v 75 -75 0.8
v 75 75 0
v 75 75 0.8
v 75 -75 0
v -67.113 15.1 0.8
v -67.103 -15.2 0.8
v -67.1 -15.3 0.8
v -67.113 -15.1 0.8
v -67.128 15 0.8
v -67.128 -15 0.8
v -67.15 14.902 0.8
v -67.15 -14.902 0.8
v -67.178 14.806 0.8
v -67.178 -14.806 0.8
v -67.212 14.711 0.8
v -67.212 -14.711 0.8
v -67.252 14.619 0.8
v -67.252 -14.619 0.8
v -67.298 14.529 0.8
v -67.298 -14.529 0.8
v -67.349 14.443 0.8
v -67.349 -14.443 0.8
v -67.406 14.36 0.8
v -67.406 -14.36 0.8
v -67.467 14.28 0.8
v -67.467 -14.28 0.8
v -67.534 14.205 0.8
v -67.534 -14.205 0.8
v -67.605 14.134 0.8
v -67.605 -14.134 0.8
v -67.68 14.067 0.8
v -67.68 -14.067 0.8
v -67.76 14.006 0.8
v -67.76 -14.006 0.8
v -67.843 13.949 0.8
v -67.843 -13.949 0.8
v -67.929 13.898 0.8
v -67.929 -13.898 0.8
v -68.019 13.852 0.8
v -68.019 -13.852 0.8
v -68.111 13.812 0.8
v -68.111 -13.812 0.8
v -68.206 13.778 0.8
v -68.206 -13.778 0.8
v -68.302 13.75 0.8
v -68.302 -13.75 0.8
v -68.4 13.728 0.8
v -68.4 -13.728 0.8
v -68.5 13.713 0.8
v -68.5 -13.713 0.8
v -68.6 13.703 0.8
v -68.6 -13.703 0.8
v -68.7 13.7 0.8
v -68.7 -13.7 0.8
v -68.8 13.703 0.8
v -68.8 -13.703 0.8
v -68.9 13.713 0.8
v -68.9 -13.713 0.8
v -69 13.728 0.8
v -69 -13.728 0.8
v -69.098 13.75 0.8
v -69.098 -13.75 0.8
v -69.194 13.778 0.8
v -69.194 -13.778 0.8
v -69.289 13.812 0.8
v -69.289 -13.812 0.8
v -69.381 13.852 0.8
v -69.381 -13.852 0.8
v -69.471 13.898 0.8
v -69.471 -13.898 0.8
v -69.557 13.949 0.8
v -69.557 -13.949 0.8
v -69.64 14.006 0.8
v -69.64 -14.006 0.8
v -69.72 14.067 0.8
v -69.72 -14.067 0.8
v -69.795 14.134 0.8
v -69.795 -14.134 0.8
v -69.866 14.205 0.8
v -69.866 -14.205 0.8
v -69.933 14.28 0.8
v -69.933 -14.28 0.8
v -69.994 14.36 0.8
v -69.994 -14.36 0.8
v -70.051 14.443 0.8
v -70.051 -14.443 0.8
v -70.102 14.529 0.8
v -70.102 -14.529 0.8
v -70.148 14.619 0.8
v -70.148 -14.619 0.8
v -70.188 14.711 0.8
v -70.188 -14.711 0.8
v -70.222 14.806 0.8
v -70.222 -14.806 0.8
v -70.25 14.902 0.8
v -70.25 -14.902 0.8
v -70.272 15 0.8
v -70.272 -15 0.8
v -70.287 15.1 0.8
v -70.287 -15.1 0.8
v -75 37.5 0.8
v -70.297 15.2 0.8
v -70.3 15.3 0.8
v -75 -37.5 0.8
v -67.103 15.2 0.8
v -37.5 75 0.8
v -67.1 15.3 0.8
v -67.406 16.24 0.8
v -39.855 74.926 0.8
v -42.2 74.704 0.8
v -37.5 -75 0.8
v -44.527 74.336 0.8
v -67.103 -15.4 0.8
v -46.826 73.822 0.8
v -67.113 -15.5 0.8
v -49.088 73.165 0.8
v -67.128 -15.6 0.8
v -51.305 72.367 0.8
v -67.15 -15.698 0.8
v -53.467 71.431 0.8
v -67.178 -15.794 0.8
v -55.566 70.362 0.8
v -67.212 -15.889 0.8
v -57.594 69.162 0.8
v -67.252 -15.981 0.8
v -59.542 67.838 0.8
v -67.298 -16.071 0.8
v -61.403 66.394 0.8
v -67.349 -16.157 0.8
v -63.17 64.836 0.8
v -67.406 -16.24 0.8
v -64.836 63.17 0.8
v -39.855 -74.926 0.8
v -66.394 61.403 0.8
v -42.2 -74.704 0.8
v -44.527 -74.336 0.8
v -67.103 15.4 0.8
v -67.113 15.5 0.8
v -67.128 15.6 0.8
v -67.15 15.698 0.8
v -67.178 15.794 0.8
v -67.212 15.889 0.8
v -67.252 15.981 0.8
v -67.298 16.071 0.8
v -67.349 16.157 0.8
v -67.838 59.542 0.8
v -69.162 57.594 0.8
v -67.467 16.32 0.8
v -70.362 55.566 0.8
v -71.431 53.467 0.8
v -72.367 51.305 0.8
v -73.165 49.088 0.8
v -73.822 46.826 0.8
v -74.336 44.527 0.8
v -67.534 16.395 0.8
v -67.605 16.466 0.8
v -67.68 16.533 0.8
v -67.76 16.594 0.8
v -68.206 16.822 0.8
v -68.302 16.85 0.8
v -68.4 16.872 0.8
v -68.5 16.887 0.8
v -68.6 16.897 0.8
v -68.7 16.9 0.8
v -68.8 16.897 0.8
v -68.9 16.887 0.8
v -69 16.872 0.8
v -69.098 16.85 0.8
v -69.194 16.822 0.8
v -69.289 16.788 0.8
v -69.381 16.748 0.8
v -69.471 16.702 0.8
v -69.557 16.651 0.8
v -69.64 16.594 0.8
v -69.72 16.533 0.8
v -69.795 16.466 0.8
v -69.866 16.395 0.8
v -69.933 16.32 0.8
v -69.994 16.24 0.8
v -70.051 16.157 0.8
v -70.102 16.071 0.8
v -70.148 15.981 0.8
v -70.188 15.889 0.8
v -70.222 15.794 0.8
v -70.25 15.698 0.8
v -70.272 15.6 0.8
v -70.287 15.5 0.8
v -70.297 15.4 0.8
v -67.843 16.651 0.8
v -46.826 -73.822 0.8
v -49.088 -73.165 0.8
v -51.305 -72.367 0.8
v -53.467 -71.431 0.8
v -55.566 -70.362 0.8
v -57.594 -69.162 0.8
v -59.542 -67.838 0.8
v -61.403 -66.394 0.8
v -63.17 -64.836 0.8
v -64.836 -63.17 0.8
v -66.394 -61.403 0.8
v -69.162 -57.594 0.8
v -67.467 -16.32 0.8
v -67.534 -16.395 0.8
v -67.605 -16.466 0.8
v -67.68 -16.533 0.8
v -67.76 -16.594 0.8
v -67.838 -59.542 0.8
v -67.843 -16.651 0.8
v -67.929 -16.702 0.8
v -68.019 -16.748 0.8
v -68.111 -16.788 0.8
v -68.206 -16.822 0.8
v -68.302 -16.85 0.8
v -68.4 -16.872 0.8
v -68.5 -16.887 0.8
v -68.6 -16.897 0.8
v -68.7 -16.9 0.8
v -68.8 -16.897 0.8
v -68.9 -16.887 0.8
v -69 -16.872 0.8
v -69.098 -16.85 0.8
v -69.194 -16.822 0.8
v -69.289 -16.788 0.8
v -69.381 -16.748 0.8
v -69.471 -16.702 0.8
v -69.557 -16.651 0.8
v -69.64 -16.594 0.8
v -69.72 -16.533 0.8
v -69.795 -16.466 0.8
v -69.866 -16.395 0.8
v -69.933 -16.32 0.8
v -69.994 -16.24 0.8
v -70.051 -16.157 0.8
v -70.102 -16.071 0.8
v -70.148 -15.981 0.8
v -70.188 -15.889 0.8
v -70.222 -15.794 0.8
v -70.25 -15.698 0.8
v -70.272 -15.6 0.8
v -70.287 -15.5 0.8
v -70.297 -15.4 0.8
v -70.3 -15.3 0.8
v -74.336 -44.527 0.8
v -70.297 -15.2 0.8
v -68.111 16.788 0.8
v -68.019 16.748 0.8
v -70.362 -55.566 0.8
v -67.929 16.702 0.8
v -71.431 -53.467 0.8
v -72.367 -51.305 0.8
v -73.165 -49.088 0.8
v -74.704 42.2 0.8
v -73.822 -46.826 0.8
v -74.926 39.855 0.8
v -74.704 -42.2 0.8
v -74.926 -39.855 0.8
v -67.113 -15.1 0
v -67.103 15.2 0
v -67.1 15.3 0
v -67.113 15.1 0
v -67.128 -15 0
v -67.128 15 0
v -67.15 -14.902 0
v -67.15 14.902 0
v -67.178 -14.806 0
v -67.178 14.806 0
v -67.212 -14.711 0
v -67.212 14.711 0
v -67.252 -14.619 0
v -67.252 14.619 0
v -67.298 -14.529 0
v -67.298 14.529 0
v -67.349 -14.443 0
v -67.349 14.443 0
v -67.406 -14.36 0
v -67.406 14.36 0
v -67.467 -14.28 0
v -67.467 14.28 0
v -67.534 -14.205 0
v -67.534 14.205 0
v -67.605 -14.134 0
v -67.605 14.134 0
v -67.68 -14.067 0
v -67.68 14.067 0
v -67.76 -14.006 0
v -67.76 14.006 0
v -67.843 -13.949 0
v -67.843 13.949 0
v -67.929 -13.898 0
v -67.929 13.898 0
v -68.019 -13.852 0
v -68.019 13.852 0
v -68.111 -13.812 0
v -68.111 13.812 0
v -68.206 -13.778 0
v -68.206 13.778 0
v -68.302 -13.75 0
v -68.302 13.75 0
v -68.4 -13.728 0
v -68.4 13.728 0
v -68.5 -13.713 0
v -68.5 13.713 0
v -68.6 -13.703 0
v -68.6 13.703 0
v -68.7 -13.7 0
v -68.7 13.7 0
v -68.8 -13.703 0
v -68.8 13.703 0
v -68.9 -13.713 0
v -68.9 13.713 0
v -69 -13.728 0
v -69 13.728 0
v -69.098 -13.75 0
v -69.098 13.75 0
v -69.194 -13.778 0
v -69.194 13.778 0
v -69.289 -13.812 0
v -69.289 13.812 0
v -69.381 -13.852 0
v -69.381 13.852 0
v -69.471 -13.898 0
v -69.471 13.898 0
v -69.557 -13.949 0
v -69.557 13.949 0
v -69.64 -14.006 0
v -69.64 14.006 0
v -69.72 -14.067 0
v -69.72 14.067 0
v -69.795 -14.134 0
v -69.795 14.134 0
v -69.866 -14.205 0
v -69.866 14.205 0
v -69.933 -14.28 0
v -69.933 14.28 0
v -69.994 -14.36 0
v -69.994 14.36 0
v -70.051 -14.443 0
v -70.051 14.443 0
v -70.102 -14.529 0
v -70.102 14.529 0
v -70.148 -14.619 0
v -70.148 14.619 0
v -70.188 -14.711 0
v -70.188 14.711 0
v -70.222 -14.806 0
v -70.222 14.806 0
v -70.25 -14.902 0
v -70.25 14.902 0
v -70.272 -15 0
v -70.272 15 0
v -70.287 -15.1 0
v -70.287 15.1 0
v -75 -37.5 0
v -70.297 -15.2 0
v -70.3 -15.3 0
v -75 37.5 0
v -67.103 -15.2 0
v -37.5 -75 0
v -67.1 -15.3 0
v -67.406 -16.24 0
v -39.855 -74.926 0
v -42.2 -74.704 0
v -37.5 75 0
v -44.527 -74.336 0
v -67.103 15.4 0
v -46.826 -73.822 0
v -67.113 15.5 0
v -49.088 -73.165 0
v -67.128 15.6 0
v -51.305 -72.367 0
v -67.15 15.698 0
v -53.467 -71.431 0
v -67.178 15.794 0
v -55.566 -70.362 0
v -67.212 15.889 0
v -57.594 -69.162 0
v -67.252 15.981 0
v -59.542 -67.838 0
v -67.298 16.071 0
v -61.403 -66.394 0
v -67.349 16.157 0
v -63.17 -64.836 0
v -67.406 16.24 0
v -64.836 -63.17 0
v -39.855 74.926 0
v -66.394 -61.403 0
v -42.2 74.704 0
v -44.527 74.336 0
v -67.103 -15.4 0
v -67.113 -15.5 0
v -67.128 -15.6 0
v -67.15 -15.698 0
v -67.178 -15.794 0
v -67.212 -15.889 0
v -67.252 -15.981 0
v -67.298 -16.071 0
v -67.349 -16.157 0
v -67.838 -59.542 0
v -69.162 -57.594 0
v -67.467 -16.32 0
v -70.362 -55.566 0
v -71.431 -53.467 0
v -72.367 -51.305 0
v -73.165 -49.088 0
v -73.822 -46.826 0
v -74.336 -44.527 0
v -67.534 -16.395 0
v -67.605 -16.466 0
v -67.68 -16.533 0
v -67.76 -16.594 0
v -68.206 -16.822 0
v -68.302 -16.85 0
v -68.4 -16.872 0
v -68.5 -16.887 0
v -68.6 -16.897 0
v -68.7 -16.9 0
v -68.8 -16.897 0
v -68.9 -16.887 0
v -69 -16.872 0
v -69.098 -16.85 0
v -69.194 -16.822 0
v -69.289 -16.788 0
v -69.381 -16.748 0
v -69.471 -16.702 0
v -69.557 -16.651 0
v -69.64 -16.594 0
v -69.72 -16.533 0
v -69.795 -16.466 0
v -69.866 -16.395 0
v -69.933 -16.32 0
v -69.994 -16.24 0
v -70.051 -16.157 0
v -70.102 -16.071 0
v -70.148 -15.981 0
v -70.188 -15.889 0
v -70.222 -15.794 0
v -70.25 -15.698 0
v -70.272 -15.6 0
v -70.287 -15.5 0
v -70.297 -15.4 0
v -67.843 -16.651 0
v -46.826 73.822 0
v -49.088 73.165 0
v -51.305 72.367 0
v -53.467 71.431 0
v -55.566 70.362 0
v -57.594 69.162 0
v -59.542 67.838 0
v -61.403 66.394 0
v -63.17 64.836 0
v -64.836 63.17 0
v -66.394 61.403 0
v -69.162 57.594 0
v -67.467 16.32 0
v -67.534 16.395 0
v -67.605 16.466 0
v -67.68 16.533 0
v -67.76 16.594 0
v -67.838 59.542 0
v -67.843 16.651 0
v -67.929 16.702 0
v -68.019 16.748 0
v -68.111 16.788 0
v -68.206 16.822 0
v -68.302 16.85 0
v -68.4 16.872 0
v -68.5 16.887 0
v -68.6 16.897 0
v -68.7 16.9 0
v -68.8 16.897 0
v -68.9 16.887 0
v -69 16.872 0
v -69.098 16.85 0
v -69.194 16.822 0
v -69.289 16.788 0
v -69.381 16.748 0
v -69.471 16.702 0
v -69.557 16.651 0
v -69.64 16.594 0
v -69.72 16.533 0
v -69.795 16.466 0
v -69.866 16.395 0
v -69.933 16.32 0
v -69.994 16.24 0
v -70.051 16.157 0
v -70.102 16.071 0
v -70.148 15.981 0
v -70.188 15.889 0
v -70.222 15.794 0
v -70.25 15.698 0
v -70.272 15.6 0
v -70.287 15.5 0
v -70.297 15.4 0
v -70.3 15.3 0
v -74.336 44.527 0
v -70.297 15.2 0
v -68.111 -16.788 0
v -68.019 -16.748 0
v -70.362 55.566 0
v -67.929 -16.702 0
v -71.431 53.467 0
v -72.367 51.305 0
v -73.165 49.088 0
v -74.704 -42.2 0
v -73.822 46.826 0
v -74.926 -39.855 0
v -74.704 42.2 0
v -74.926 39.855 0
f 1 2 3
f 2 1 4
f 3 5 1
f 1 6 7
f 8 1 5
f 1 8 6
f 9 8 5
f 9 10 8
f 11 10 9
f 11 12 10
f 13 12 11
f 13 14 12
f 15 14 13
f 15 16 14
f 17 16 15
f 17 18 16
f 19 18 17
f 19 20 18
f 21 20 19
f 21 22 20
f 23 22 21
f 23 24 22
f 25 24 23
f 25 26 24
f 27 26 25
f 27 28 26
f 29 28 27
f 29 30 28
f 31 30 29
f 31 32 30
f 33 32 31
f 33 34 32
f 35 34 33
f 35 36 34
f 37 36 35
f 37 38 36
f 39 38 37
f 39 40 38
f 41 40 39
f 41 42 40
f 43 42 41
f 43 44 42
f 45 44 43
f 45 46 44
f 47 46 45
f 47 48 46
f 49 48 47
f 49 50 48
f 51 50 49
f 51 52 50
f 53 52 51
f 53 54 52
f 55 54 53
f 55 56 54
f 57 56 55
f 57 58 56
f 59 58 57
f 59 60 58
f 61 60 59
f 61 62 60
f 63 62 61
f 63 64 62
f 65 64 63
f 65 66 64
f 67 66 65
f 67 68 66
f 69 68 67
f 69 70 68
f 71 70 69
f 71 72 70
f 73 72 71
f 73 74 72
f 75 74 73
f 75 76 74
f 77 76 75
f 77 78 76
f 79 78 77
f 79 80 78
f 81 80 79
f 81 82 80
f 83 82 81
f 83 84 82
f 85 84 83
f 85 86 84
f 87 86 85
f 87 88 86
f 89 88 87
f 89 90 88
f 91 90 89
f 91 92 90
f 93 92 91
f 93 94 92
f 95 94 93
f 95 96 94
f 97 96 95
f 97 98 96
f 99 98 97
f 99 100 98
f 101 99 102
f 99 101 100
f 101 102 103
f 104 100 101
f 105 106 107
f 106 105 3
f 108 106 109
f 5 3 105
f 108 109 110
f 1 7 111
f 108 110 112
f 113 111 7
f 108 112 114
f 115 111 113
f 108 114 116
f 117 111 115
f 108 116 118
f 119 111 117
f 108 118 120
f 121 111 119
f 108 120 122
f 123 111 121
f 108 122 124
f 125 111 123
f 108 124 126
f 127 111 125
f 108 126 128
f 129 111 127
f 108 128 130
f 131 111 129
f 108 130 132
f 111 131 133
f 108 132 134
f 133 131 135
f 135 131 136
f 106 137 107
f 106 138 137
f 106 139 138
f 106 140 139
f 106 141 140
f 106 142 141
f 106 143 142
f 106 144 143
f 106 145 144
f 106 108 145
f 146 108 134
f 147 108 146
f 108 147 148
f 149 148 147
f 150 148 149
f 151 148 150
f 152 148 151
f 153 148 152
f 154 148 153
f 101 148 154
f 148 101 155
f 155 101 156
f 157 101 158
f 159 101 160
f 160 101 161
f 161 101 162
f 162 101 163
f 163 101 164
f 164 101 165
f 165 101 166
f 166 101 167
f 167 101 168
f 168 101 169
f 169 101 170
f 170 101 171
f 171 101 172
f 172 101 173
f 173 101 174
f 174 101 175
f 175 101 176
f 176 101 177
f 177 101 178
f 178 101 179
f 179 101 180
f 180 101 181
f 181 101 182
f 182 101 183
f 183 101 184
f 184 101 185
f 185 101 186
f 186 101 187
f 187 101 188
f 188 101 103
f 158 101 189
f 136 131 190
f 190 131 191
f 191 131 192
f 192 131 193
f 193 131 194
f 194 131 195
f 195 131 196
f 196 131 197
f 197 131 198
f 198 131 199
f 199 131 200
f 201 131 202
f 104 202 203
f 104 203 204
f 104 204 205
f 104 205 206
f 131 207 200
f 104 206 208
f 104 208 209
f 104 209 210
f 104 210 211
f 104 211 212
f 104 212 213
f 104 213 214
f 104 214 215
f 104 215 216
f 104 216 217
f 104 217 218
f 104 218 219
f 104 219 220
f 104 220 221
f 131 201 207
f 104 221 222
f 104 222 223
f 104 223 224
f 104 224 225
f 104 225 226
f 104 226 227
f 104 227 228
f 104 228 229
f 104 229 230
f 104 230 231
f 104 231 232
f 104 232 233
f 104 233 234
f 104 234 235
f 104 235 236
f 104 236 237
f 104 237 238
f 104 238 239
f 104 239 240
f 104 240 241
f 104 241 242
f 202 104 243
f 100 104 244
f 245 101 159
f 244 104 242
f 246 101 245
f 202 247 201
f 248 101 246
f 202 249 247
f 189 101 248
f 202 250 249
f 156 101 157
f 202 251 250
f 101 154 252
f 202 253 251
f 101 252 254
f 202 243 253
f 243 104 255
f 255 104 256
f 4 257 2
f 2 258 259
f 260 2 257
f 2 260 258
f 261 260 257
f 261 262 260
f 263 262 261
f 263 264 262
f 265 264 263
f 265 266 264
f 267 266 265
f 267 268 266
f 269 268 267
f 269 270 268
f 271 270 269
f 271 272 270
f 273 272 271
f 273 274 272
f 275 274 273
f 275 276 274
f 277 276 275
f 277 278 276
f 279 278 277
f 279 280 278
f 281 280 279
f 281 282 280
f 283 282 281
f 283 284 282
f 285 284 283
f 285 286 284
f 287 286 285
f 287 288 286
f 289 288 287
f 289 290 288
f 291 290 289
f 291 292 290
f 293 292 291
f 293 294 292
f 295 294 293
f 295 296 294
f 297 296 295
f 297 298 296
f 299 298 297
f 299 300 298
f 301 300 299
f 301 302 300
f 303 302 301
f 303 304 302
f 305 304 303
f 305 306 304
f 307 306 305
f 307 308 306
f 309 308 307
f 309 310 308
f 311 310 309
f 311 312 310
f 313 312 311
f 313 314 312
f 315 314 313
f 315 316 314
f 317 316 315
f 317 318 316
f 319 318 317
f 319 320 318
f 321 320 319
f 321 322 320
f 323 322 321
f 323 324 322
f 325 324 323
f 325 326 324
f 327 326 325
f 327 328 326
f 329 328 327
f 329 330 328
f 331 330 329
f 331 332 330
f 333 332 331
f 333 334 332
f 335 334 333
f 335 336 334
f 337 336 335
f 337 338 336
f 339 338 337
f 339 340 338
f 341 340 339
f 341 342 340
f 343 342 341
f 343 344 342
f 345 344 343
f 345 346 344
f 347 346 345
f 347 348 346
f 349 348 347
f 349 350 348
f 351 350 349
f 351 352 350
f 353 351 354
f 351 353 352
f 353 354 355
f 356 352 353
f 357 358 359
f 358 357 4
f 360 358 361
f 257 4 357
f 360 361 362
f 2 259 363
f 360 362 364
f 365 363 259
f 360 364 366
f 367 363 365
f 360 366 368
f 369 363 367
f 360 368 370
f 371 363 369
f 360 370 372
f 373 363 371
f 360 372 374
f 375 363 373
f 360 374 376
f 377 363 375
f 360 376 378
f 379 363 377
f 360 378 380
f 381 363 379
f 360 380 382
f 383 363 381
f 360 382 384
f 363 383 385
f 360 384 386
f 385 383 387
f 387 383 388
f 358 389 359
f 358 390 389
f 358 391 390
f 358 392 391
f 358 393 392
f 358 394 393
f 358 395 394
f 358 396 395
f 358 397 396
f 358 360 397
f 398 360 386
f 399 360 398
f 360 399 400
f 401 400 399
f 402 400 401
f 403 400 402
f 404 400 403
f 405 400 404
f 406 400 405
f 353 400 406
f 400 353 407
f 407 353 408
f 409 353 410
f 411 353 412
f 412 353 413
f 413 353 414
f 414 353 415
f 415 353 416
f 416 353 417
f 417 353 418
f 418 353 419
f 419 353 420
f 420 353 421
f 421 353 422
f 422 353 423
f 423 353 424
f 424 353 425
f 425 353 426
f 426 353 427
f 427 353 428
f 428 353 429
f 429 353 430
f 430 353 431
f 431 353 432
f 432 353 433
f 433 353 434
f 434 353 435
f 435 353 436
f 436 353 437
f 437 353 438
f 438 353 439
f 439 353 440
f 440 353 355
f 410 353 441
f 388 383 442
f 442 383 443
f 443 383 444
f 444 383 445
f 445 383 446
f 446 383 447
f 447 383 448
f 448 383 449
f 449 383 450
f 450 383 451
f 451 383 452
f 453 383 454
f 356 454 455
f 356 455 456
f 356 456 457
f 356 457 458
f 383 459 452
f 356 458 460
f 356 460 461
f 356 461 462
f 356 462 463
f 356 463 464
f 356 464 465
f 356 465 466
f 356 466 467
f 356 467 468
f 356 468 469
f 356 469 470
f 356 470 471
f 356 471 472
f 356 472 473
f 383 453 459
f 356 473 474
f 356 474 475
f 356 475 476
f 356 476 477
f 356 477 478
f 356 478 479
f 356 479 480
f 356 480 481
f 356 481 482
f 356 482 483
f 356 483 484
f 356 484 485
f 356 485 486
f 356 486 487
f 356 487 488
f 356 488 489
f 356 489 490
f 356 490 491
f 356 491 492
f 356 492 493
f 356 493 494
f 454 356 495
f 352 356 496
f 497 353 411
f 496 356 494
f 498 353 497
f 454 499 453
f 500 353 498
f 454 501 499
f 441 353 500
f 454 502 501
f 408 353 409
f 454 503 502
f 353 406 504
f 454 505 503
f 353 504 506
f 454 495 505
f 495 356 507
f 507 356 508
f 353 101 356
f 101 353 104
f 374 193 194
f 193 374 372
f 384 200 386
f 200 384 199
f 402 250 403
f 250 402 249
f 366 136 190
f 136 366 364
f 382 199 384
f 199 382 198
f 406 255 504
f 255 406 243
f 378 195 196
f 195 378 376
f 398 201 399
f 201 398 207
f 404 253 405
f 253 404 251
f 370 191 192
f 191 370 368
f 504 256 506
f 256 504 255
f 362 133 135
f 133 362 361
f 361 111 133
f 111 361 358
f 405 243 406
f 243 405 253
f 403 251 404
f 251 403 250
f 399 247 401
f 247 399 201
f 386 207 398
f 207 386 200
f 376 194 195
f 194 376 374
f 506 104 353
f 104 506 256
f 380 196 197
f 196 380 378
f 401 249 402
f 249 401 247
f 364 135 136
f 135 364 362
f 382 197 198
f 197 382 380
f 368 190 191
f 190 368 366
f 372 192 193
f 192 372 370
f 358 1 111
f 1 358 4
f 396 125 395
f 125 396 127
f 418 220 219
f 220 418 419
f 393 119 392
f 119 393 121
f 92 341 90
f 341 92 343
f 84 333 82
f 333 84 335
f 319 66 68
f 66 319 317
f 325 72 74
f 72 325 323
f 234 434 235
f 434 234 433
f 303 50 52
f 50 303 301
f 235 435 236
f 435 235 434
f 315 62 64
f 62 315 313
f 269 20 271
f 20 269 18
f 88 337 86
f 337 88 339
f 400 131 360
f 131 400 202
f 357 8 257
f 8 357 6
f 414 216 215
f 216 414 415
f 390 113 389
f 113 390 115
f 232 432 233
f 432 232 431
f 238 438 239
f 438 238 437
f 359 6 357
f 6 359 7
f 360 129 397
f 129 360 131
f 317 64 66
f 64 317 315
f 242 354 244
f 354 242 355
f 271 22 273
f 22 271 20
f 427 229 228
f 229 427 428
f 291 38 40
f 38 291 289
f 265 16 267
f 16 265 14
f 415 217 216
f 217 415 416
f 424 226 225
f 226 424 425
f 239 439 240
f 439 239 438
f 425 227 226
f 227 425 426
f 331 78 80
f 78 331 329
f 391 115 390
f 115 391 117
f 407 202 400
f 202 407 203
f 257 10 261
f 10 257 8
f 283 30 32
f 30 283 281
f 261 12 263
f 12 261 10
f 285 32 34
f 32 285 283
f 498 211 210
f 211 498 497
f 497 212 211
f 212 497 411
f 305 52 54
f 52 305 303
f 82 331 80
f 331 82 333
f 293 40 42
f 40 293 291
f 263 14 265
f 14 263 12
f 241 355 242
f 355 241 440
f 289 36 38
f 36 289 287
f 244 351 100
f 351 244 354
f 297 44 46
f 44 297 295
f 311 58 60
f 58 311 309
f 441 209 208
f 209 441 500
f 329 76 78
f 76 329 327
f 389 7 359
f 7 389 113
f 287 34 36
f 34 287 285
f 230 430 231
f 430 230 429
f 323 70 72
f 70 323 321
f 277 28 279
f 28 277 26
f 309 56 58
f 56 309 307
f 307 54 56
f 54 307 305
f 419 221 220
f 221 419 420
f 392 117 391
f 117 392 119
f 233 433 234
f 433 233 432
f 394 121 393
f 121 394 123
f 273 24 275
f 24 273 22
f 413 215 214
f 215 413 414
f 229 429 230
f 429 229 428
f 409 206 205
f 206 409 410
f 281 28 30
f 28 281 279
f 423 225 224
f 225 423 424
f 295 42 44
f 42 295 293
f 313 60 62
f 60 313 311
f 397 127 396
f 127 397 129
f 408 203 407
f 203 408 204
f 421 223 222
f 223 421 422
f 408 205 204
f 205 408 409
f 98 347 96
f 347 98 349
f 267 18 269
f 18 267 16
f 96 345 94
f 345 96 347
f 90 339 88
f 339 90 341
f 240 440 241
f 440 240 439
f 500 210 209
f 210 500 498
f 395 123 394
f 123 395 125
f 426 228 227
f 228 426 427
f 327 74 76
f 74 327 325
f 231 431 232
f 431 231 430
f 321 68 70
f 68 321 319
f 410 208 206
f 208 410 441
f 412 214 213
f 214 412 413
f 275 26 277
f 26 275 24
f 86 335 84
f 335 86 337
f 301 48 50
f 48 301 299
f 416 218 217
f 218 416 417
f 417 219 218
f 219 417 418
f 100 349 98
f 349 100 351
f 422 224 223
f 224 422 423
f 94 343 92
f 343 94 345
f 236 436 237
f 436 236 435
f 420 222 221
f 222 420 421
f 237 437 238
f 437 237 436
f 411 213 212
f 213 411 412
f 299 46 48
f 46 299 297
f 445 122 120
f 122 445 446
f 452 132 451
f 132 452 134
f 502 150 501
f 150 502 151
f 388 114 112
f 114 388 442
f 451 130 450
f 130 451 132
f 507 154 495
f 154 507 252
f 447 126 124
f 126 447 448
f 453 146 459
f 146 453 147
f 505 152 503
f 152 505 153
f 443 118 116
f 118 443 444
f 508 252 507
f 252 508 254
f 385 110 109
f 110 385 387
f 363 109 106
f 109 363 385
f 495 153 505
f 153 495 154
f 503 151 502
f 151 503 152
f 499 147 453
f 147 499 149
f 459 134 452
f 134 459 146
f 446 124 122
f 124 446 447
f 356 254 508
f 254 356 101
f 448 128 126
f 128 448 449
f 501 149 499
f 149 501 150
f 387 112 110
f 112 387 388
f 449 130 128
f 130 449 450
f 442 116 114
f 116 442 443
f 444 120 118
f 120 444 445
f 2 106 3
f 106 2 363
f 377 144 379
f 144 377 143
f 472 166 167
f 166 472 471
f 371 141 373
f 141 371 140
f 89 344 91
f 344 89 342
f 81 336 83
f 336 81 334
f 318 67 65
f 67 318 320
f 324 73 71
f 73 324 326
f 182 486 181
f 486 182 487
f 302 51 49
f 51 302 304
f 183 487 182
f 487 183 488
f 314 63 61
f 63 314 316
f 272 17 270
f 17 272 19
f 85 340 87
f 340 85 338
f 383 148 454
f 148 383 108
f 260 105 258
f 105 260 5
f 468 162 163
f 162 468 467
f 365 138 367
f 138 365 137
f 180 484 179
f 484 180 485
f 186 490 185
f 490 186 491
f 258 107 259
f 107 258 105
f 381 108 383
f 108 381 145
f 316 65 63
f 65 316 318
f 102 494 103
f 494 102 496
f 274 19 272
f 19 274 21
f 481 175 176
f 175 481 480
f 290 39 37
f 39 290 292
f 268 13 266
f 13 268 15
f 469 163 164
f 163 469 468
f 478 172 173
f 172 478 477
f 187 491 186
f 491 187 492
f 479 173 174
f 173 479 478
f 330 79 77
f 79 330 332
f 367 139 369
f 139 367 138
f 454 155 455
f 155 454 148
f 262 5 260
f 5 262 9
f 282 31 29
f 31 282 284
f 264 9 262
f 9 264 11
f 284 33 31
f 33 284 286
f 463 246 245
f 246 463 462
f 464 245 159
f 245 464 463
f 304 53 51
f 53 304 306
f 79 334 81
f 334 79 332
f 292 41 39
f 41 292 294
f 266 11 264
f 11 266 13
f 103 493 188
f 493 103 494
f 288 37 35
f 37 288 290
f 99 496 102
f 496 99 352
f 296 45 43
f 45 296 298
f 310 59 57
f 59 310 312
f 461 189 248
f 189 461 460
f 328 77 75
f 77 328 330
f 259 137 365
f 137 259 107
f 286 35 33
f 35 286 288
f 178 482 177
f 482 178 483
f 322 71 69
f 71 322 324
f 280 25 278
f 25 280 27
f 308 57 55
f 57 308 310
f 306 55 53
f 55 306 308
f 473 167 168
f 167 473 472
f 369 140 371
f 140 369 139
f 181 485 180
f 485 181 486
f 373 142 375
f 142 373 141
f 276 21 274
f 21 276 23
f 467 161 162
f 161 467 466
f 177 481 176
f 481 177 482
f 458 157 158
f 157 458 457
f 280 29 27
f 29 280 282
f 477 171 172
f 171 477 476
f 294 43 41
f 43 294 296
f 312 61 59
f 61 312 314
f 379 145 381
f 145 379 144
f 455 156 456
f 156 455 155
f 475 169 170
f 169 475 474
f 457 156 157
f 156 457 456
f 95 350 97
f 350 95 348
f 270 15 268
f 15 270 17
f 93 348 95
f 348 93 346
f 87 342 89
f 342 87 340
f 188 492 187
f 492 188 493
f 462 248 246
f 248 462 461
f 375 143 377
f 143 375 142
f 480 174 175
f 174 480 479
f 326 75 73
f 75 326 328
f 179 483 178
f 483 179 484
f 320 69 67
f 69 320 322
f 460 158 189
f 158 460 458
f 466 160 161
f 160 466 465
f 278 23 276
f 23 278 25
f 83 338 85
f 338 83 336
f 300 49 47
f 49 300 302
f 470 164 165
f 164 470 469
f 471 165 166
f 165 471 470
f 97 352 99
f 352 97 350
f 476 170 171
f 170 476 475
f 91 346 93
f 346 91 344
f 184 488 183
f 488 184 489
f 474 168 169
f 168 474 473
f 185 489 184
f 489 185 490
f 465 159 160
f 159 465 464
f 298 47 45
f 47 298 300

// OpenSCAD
// file: ../src/lib/copyFunctions.scad
// copyFunctions.scad - library for copy versions of mirror/rotate/translate
// May 2019

// general use: just like normal version of given function

module rotate_copy(v=[1,0,0])
{
    children();
    rotate(v) children();
}

module mirror_copy(v=[1,0,0])
{
    children();
    mirror(v) children();
}

module translate_copy(v=[1,0,0])
{
    children();
    translate(v) children();
}
// file: ../src/WINDGAUGE_R05.scad
include <../configuration.scad>
use <./lib/copyFunctions.scad>

module WINDGAUGE01A_R05(draft = true)
{
    mirror_copy([0, 1, 0])
    difference()
    {
        // Fin
        union()
        {
            translate([-R03_fin_length/2, -R03_fin_height/4, 0])
                    cube([R03_fin_length, R03_fin_height/4, R03_fin_width]);
            translate([-R03_fin_length/4, -R03_fin_height/4, 0])
                    cylinder(h = R03_fin_width, d = R03_fin_height/2);
            translate([-R03_fin_length/4, -R03_fin_height/2, 0])
                    cube([3/4 * R03_fin_length, R03_fin_height/4, R03_fin_width]);
        }
            // Bolt hole
            translate([-R03_fin_length/2 + R03_fin_holder_height/2,
                       -R03_fin_holder_depth/2, 0])
                cylinder(h = R03_fin_width, d = M3_bolt_diameter);
    }
}

WINDGAUGE01A_R05(draft = true);
// file: ../configuration.scad
//$fn=40; // model faces resolution.

//COMMON PARAMETERS
global_clearance = 0.5; // additional space where needed due to printer precision
layer_thickness = 0.3; // layer which is going to be removed after printing
//M3 x 12 Bolt
M3_nut_diameter = 6.6;
M3_nut_height = 2.7;
M3_bolt_diameter = 3.2;
M3_bolt_head_height = 3;
M3_bolt_length = 12;
//M5 Bolt
M5_bolt_diameter = 5.5;
M5_nut_height = 4.5;
M5_nut_diameter = 9.4;
//M6 Bolt
M6_bolt_diameter = 6.5;
M6_nut_height = 4.9;
M6_nut_diameter = 11.8;


//----------------------------------------------------------------
//----------------------------------------------------------------
//WINDGAUGE02A_S02 - Parametry pro hlavni valec anemometru
S01_hloubka_zavitu=4;
S01_vyska=110; //80
S01_prumer_vnitrni=50;
S01_sila_materialu=1.2;
S01_vyska_horni_zavit=10;
S01_vyska_spodniho_zavitu=10;
S01_sila_drzaku_RJ11=3; //vyška drážky
S01_hrana_A_RJ11=12.3;
S01_hrana_B_RJ11=19;
S01_tolerance_zavit=1.5;

//Rozměry ložiska se závity
//LO_spodni_prumer=22;
LO_spodni_prumer=17.2; //bez krytu
LO_vyska_bez_krytu=15;
LO_doraz_prumer=44.3;
LO_horni_prumer=7.7;
LO_vyska_spodni_doraz=5;
LO_vyska_horni_doraz=9;
LO_vyska_dorazu=0;





//Obecné parametry
prumer_osicky=5.1;



//Parametry loziska
lozisko_prumer_vnitrni=4.9;
lozisko_prumer_vnejsi=16.1;
lozisko_vyska=5;
lozisko_prekryv=1.5;

//Parametry magnetu
magnet_prumer=6.3;
magnet_vyska=5;
magnet_zapusteni=2;
magnet_tolerance_prumeru=0.2;

//Parametry sroubu
prumer_sroubu=3.4;
prumer_hlavy_sroubu=8.2;
vyska_hlavy_sroubu=4.3;
vyska_matky=3;
sirka_matky=6.7;

sirka_matky_tol=0.175;
prumer_orechu=10;

//WINDGAUGE02A_R01 //pro lopatku
L01_hrana_drzaku_a=10;
L01_hrana_drzaku_b=3;
L01_delka_uchytu=19;
L01_prumer_lopatky=40;
L01_sila_materialu_lopatky=0.9;

//WINDGAUGE02A_D02 Anemometer holder
//   | |   Top ring with Screw-thread
//  /   \  Body
// |_____| Base
D02_magnet_base_height = 4.5 + 1.5*global_clearance; // HS-13 M5 magnet height without bolt
D02_magnet_diameter = 16.1 + global_clearance; // HS-13 M5 magnet diameter
D02_flat_magnet_diameter = 18.1 + global_clearance; // HS-13 M5 magnet diameter
D02_wall_thickness = 5; // body wall thickness
D02_connector_spacing = 40; // main body cut-through for connectors
D02_base_diameter = 140; // diameter of holder base
D02_base_height = max(M6_nut_height + 1.5,
                      D02_magnet_base_height + M5_nut_height/2 + 1.5); // height of holder base
D02_body_height = 60 - D02_base_height; // height of body between base and top ring
D02_screw_diameter = S01_prumer_vnitrni - S01_tolerance_zavit; // scew-thread diameter based on stand S01
D02_thread_height = S01_vyska_spodniho_zavitu; // screw-thread height based on stand S01
D02_top_ring_inner_diameter = D02_screw_diameter - 6; // inner diameter of top ring
D02_top_ring_outer_diameter = D02_screw_diameter + 4; // outer diameter of top ring
D02_top_ring_height = D02_thread_height + 5; // height of top ring
D02_total_height = D02_base_height + D02_body_height + D02_top_ring_height; // total height of anemometer holder
// Following parameters are obsolete, maintained only for compatibility.
D01_material_pod_zavitem = D02_top_ring_height - D02_thread_height;
D01_material_za_zavitem = D02_screw_diameter - D02_top_ring_inner_diameter;
D01_material_pred_zavitem = D02_top_ring_outer_diameter - D02_screw_diameter;
D01_polomer_zakladny = D02_base_diameter/2;
D01_sila_setny_spodniho_drzaku=D02_wall_thickness;
D01_vyska_spodni_casti_drzaku = D02_body_height + D02_base_height;
D01_sirka_otvoru_pro_konektor = D02_connector_spacing;
D01_ucyhtna_matice_material_nad = D02_base_height - M6_nut_height;
D01_uchytna_matice_vyska = M6_nut_height;
D01_uchytna_matice_sirka = M6_nut_diameter;
D01_uchytny_sroub_prumer = M6_bolt_diameter;

// Following parameters are actually used in D01 model.
//WINDGAUGE02A_D02 //uchyt na sloup
D02_sila_materialu=6;
D02_vyska_uchytky=40;
D02_prumer_obruby=27; // 3/4 trubka
D02_delka_celeho_uchytu=60;
D02_dotahova_vzdalenost=1.5;
D02_prumer_uchytneho_sroubu=4.2;
D02_sirka_matky=9.1; //pro M4
D02_vyska_matky=3;


//WINDGAUGE02A_R01 //rotor s prekritim statoru
R01_vyska_prekryti_statoru=10;
R01_sila_materialu_pro_prekriti=1.3;
R01_mezera_mezi_statorem_rotorem=3;

//WINDGAUGE02A_R03 //drzak magnetu
R05_sirka_matky=10;



R03_prumer_zavitu=40;
R04_zavit_vyska=5;
R02_zavit_vyska=10;
R01_zavit_vyska=5;
R03_mezera_mezi_statorem_rotorem=3;

R02_delka_kridla=45;
R02_vzdalenost_der=25;

R02_delka_vyrovnnavaci_tyce=35;
R02_hrana_drzaku=14;
R02_sila_materialu_pod_tyci=5;
R02_sila_materialu_kridla=1.2;
R02_sila_materialu_kridla_tolerance=0.3;

R05_vyska_kridla=100;
R05_delka_kridla=100;


//S04
I2CDIFF01A_sirka_kon=16.5; //sirka konektoru
I2CDIFF01A_vyska_kon=13.5; //vyska konektoru
I2CDIFF01A_sirka_mod_otvory=4; //kolik modul zabira der
I2CDIFF01A_vyska_PCB=2; //vyska mezi albase a konektorem
S04_sila_materialu=2;

//S04_USBI2C01A
USBI2C01A_sirka_kon=12; //sirka konektoru
USBI2C01A_vyska_kon=11; //vyska konektoru
USBI2C01A_sirka_mod_otvory=3; //kolik modul zabira der
USBI2C01A_vyska_PCB=2; //vyska mezi albase a konektorem


//WINDGAUGE03A_R03 // Venturi tube
R03_wide_D = 36; // Venturi wide tube inner diameter
R03_narrow_D = R03_wide_D/1.4; // Venturi narrow tube inner diameter
R03_global_clearance = global_clearance; // additional space where needed due to printer precision
R03_PCB_top_rim = 5.5; // vertical distance from top of tube to top of PCB
R03_PCB_height = 41; // height of PCB casing - if changed check casing
R03_PCB_width = 14; // width of PCB casing - if changed check casing
R03_PCB_depth = 3.7; // depth of PCB casing - if changed check casing
R03_PCB_connector_overlay = 2.5; // additional depth of PCB casing on connectors side - if changed check casing
R03_PCB_elevation = 2; // additional elevation of PCB for waterproofing
R03_air_tube_diameter = 2; // air tubes diameter
R03_sensor_housing_offset = 15;  // distance from venturi tube height to sensor housing drop
R03_sensor_offset = 2.2;  // SDP33 distance from PCB border to sensor
R03_sensor_pitch = 4.3;  // SDP33 distance between sensors
R03_sensor_diameter = 3.5;  // SDP33 sensor diameter
R03_sensor_depth = 2.5;  // SDP33 sensor depth
R03_slip_ring_offset = 0; // slip-ring offset from tube center
R03_venturi_tube_height = 150;  // Venturi tube height (limited by max print size)
R03_wall_thickness = 3; // Venturi tube wall thickness
R03_sealing_ring_thickness = 1.5; // sealing ring size
R03_fin_width = 0.8; // width of vertical stabilizator
R03_fin_length = 150; // length of vertical stabilizator
R03_fin_height = 150; // height of vertical stabilizator
R03_fin_holder_width = M3_bolt_length + M3_nut_height;
R03_fin_holder_height = M3_nut_diameter + 2*R03_wall_thickness;
R03_fin_holder_depth = R03_wide_D/2 + R03_fin_holder_height;
R03_balance_shelf_width = 20; // width of shelf for balance weights
R03_balance_shelf_height = 10; // height of shelf for balance weights
// main file
$fn=100; // model faces resolution.
include <../configuration.scad>
use <../src/WINDGAUGE_R05.scad>

//neni potřeba
    translate([0, 0, 0])
        rotate([0, 0, 0])
            WINDGAUGE01A_R05(draft=false);   
